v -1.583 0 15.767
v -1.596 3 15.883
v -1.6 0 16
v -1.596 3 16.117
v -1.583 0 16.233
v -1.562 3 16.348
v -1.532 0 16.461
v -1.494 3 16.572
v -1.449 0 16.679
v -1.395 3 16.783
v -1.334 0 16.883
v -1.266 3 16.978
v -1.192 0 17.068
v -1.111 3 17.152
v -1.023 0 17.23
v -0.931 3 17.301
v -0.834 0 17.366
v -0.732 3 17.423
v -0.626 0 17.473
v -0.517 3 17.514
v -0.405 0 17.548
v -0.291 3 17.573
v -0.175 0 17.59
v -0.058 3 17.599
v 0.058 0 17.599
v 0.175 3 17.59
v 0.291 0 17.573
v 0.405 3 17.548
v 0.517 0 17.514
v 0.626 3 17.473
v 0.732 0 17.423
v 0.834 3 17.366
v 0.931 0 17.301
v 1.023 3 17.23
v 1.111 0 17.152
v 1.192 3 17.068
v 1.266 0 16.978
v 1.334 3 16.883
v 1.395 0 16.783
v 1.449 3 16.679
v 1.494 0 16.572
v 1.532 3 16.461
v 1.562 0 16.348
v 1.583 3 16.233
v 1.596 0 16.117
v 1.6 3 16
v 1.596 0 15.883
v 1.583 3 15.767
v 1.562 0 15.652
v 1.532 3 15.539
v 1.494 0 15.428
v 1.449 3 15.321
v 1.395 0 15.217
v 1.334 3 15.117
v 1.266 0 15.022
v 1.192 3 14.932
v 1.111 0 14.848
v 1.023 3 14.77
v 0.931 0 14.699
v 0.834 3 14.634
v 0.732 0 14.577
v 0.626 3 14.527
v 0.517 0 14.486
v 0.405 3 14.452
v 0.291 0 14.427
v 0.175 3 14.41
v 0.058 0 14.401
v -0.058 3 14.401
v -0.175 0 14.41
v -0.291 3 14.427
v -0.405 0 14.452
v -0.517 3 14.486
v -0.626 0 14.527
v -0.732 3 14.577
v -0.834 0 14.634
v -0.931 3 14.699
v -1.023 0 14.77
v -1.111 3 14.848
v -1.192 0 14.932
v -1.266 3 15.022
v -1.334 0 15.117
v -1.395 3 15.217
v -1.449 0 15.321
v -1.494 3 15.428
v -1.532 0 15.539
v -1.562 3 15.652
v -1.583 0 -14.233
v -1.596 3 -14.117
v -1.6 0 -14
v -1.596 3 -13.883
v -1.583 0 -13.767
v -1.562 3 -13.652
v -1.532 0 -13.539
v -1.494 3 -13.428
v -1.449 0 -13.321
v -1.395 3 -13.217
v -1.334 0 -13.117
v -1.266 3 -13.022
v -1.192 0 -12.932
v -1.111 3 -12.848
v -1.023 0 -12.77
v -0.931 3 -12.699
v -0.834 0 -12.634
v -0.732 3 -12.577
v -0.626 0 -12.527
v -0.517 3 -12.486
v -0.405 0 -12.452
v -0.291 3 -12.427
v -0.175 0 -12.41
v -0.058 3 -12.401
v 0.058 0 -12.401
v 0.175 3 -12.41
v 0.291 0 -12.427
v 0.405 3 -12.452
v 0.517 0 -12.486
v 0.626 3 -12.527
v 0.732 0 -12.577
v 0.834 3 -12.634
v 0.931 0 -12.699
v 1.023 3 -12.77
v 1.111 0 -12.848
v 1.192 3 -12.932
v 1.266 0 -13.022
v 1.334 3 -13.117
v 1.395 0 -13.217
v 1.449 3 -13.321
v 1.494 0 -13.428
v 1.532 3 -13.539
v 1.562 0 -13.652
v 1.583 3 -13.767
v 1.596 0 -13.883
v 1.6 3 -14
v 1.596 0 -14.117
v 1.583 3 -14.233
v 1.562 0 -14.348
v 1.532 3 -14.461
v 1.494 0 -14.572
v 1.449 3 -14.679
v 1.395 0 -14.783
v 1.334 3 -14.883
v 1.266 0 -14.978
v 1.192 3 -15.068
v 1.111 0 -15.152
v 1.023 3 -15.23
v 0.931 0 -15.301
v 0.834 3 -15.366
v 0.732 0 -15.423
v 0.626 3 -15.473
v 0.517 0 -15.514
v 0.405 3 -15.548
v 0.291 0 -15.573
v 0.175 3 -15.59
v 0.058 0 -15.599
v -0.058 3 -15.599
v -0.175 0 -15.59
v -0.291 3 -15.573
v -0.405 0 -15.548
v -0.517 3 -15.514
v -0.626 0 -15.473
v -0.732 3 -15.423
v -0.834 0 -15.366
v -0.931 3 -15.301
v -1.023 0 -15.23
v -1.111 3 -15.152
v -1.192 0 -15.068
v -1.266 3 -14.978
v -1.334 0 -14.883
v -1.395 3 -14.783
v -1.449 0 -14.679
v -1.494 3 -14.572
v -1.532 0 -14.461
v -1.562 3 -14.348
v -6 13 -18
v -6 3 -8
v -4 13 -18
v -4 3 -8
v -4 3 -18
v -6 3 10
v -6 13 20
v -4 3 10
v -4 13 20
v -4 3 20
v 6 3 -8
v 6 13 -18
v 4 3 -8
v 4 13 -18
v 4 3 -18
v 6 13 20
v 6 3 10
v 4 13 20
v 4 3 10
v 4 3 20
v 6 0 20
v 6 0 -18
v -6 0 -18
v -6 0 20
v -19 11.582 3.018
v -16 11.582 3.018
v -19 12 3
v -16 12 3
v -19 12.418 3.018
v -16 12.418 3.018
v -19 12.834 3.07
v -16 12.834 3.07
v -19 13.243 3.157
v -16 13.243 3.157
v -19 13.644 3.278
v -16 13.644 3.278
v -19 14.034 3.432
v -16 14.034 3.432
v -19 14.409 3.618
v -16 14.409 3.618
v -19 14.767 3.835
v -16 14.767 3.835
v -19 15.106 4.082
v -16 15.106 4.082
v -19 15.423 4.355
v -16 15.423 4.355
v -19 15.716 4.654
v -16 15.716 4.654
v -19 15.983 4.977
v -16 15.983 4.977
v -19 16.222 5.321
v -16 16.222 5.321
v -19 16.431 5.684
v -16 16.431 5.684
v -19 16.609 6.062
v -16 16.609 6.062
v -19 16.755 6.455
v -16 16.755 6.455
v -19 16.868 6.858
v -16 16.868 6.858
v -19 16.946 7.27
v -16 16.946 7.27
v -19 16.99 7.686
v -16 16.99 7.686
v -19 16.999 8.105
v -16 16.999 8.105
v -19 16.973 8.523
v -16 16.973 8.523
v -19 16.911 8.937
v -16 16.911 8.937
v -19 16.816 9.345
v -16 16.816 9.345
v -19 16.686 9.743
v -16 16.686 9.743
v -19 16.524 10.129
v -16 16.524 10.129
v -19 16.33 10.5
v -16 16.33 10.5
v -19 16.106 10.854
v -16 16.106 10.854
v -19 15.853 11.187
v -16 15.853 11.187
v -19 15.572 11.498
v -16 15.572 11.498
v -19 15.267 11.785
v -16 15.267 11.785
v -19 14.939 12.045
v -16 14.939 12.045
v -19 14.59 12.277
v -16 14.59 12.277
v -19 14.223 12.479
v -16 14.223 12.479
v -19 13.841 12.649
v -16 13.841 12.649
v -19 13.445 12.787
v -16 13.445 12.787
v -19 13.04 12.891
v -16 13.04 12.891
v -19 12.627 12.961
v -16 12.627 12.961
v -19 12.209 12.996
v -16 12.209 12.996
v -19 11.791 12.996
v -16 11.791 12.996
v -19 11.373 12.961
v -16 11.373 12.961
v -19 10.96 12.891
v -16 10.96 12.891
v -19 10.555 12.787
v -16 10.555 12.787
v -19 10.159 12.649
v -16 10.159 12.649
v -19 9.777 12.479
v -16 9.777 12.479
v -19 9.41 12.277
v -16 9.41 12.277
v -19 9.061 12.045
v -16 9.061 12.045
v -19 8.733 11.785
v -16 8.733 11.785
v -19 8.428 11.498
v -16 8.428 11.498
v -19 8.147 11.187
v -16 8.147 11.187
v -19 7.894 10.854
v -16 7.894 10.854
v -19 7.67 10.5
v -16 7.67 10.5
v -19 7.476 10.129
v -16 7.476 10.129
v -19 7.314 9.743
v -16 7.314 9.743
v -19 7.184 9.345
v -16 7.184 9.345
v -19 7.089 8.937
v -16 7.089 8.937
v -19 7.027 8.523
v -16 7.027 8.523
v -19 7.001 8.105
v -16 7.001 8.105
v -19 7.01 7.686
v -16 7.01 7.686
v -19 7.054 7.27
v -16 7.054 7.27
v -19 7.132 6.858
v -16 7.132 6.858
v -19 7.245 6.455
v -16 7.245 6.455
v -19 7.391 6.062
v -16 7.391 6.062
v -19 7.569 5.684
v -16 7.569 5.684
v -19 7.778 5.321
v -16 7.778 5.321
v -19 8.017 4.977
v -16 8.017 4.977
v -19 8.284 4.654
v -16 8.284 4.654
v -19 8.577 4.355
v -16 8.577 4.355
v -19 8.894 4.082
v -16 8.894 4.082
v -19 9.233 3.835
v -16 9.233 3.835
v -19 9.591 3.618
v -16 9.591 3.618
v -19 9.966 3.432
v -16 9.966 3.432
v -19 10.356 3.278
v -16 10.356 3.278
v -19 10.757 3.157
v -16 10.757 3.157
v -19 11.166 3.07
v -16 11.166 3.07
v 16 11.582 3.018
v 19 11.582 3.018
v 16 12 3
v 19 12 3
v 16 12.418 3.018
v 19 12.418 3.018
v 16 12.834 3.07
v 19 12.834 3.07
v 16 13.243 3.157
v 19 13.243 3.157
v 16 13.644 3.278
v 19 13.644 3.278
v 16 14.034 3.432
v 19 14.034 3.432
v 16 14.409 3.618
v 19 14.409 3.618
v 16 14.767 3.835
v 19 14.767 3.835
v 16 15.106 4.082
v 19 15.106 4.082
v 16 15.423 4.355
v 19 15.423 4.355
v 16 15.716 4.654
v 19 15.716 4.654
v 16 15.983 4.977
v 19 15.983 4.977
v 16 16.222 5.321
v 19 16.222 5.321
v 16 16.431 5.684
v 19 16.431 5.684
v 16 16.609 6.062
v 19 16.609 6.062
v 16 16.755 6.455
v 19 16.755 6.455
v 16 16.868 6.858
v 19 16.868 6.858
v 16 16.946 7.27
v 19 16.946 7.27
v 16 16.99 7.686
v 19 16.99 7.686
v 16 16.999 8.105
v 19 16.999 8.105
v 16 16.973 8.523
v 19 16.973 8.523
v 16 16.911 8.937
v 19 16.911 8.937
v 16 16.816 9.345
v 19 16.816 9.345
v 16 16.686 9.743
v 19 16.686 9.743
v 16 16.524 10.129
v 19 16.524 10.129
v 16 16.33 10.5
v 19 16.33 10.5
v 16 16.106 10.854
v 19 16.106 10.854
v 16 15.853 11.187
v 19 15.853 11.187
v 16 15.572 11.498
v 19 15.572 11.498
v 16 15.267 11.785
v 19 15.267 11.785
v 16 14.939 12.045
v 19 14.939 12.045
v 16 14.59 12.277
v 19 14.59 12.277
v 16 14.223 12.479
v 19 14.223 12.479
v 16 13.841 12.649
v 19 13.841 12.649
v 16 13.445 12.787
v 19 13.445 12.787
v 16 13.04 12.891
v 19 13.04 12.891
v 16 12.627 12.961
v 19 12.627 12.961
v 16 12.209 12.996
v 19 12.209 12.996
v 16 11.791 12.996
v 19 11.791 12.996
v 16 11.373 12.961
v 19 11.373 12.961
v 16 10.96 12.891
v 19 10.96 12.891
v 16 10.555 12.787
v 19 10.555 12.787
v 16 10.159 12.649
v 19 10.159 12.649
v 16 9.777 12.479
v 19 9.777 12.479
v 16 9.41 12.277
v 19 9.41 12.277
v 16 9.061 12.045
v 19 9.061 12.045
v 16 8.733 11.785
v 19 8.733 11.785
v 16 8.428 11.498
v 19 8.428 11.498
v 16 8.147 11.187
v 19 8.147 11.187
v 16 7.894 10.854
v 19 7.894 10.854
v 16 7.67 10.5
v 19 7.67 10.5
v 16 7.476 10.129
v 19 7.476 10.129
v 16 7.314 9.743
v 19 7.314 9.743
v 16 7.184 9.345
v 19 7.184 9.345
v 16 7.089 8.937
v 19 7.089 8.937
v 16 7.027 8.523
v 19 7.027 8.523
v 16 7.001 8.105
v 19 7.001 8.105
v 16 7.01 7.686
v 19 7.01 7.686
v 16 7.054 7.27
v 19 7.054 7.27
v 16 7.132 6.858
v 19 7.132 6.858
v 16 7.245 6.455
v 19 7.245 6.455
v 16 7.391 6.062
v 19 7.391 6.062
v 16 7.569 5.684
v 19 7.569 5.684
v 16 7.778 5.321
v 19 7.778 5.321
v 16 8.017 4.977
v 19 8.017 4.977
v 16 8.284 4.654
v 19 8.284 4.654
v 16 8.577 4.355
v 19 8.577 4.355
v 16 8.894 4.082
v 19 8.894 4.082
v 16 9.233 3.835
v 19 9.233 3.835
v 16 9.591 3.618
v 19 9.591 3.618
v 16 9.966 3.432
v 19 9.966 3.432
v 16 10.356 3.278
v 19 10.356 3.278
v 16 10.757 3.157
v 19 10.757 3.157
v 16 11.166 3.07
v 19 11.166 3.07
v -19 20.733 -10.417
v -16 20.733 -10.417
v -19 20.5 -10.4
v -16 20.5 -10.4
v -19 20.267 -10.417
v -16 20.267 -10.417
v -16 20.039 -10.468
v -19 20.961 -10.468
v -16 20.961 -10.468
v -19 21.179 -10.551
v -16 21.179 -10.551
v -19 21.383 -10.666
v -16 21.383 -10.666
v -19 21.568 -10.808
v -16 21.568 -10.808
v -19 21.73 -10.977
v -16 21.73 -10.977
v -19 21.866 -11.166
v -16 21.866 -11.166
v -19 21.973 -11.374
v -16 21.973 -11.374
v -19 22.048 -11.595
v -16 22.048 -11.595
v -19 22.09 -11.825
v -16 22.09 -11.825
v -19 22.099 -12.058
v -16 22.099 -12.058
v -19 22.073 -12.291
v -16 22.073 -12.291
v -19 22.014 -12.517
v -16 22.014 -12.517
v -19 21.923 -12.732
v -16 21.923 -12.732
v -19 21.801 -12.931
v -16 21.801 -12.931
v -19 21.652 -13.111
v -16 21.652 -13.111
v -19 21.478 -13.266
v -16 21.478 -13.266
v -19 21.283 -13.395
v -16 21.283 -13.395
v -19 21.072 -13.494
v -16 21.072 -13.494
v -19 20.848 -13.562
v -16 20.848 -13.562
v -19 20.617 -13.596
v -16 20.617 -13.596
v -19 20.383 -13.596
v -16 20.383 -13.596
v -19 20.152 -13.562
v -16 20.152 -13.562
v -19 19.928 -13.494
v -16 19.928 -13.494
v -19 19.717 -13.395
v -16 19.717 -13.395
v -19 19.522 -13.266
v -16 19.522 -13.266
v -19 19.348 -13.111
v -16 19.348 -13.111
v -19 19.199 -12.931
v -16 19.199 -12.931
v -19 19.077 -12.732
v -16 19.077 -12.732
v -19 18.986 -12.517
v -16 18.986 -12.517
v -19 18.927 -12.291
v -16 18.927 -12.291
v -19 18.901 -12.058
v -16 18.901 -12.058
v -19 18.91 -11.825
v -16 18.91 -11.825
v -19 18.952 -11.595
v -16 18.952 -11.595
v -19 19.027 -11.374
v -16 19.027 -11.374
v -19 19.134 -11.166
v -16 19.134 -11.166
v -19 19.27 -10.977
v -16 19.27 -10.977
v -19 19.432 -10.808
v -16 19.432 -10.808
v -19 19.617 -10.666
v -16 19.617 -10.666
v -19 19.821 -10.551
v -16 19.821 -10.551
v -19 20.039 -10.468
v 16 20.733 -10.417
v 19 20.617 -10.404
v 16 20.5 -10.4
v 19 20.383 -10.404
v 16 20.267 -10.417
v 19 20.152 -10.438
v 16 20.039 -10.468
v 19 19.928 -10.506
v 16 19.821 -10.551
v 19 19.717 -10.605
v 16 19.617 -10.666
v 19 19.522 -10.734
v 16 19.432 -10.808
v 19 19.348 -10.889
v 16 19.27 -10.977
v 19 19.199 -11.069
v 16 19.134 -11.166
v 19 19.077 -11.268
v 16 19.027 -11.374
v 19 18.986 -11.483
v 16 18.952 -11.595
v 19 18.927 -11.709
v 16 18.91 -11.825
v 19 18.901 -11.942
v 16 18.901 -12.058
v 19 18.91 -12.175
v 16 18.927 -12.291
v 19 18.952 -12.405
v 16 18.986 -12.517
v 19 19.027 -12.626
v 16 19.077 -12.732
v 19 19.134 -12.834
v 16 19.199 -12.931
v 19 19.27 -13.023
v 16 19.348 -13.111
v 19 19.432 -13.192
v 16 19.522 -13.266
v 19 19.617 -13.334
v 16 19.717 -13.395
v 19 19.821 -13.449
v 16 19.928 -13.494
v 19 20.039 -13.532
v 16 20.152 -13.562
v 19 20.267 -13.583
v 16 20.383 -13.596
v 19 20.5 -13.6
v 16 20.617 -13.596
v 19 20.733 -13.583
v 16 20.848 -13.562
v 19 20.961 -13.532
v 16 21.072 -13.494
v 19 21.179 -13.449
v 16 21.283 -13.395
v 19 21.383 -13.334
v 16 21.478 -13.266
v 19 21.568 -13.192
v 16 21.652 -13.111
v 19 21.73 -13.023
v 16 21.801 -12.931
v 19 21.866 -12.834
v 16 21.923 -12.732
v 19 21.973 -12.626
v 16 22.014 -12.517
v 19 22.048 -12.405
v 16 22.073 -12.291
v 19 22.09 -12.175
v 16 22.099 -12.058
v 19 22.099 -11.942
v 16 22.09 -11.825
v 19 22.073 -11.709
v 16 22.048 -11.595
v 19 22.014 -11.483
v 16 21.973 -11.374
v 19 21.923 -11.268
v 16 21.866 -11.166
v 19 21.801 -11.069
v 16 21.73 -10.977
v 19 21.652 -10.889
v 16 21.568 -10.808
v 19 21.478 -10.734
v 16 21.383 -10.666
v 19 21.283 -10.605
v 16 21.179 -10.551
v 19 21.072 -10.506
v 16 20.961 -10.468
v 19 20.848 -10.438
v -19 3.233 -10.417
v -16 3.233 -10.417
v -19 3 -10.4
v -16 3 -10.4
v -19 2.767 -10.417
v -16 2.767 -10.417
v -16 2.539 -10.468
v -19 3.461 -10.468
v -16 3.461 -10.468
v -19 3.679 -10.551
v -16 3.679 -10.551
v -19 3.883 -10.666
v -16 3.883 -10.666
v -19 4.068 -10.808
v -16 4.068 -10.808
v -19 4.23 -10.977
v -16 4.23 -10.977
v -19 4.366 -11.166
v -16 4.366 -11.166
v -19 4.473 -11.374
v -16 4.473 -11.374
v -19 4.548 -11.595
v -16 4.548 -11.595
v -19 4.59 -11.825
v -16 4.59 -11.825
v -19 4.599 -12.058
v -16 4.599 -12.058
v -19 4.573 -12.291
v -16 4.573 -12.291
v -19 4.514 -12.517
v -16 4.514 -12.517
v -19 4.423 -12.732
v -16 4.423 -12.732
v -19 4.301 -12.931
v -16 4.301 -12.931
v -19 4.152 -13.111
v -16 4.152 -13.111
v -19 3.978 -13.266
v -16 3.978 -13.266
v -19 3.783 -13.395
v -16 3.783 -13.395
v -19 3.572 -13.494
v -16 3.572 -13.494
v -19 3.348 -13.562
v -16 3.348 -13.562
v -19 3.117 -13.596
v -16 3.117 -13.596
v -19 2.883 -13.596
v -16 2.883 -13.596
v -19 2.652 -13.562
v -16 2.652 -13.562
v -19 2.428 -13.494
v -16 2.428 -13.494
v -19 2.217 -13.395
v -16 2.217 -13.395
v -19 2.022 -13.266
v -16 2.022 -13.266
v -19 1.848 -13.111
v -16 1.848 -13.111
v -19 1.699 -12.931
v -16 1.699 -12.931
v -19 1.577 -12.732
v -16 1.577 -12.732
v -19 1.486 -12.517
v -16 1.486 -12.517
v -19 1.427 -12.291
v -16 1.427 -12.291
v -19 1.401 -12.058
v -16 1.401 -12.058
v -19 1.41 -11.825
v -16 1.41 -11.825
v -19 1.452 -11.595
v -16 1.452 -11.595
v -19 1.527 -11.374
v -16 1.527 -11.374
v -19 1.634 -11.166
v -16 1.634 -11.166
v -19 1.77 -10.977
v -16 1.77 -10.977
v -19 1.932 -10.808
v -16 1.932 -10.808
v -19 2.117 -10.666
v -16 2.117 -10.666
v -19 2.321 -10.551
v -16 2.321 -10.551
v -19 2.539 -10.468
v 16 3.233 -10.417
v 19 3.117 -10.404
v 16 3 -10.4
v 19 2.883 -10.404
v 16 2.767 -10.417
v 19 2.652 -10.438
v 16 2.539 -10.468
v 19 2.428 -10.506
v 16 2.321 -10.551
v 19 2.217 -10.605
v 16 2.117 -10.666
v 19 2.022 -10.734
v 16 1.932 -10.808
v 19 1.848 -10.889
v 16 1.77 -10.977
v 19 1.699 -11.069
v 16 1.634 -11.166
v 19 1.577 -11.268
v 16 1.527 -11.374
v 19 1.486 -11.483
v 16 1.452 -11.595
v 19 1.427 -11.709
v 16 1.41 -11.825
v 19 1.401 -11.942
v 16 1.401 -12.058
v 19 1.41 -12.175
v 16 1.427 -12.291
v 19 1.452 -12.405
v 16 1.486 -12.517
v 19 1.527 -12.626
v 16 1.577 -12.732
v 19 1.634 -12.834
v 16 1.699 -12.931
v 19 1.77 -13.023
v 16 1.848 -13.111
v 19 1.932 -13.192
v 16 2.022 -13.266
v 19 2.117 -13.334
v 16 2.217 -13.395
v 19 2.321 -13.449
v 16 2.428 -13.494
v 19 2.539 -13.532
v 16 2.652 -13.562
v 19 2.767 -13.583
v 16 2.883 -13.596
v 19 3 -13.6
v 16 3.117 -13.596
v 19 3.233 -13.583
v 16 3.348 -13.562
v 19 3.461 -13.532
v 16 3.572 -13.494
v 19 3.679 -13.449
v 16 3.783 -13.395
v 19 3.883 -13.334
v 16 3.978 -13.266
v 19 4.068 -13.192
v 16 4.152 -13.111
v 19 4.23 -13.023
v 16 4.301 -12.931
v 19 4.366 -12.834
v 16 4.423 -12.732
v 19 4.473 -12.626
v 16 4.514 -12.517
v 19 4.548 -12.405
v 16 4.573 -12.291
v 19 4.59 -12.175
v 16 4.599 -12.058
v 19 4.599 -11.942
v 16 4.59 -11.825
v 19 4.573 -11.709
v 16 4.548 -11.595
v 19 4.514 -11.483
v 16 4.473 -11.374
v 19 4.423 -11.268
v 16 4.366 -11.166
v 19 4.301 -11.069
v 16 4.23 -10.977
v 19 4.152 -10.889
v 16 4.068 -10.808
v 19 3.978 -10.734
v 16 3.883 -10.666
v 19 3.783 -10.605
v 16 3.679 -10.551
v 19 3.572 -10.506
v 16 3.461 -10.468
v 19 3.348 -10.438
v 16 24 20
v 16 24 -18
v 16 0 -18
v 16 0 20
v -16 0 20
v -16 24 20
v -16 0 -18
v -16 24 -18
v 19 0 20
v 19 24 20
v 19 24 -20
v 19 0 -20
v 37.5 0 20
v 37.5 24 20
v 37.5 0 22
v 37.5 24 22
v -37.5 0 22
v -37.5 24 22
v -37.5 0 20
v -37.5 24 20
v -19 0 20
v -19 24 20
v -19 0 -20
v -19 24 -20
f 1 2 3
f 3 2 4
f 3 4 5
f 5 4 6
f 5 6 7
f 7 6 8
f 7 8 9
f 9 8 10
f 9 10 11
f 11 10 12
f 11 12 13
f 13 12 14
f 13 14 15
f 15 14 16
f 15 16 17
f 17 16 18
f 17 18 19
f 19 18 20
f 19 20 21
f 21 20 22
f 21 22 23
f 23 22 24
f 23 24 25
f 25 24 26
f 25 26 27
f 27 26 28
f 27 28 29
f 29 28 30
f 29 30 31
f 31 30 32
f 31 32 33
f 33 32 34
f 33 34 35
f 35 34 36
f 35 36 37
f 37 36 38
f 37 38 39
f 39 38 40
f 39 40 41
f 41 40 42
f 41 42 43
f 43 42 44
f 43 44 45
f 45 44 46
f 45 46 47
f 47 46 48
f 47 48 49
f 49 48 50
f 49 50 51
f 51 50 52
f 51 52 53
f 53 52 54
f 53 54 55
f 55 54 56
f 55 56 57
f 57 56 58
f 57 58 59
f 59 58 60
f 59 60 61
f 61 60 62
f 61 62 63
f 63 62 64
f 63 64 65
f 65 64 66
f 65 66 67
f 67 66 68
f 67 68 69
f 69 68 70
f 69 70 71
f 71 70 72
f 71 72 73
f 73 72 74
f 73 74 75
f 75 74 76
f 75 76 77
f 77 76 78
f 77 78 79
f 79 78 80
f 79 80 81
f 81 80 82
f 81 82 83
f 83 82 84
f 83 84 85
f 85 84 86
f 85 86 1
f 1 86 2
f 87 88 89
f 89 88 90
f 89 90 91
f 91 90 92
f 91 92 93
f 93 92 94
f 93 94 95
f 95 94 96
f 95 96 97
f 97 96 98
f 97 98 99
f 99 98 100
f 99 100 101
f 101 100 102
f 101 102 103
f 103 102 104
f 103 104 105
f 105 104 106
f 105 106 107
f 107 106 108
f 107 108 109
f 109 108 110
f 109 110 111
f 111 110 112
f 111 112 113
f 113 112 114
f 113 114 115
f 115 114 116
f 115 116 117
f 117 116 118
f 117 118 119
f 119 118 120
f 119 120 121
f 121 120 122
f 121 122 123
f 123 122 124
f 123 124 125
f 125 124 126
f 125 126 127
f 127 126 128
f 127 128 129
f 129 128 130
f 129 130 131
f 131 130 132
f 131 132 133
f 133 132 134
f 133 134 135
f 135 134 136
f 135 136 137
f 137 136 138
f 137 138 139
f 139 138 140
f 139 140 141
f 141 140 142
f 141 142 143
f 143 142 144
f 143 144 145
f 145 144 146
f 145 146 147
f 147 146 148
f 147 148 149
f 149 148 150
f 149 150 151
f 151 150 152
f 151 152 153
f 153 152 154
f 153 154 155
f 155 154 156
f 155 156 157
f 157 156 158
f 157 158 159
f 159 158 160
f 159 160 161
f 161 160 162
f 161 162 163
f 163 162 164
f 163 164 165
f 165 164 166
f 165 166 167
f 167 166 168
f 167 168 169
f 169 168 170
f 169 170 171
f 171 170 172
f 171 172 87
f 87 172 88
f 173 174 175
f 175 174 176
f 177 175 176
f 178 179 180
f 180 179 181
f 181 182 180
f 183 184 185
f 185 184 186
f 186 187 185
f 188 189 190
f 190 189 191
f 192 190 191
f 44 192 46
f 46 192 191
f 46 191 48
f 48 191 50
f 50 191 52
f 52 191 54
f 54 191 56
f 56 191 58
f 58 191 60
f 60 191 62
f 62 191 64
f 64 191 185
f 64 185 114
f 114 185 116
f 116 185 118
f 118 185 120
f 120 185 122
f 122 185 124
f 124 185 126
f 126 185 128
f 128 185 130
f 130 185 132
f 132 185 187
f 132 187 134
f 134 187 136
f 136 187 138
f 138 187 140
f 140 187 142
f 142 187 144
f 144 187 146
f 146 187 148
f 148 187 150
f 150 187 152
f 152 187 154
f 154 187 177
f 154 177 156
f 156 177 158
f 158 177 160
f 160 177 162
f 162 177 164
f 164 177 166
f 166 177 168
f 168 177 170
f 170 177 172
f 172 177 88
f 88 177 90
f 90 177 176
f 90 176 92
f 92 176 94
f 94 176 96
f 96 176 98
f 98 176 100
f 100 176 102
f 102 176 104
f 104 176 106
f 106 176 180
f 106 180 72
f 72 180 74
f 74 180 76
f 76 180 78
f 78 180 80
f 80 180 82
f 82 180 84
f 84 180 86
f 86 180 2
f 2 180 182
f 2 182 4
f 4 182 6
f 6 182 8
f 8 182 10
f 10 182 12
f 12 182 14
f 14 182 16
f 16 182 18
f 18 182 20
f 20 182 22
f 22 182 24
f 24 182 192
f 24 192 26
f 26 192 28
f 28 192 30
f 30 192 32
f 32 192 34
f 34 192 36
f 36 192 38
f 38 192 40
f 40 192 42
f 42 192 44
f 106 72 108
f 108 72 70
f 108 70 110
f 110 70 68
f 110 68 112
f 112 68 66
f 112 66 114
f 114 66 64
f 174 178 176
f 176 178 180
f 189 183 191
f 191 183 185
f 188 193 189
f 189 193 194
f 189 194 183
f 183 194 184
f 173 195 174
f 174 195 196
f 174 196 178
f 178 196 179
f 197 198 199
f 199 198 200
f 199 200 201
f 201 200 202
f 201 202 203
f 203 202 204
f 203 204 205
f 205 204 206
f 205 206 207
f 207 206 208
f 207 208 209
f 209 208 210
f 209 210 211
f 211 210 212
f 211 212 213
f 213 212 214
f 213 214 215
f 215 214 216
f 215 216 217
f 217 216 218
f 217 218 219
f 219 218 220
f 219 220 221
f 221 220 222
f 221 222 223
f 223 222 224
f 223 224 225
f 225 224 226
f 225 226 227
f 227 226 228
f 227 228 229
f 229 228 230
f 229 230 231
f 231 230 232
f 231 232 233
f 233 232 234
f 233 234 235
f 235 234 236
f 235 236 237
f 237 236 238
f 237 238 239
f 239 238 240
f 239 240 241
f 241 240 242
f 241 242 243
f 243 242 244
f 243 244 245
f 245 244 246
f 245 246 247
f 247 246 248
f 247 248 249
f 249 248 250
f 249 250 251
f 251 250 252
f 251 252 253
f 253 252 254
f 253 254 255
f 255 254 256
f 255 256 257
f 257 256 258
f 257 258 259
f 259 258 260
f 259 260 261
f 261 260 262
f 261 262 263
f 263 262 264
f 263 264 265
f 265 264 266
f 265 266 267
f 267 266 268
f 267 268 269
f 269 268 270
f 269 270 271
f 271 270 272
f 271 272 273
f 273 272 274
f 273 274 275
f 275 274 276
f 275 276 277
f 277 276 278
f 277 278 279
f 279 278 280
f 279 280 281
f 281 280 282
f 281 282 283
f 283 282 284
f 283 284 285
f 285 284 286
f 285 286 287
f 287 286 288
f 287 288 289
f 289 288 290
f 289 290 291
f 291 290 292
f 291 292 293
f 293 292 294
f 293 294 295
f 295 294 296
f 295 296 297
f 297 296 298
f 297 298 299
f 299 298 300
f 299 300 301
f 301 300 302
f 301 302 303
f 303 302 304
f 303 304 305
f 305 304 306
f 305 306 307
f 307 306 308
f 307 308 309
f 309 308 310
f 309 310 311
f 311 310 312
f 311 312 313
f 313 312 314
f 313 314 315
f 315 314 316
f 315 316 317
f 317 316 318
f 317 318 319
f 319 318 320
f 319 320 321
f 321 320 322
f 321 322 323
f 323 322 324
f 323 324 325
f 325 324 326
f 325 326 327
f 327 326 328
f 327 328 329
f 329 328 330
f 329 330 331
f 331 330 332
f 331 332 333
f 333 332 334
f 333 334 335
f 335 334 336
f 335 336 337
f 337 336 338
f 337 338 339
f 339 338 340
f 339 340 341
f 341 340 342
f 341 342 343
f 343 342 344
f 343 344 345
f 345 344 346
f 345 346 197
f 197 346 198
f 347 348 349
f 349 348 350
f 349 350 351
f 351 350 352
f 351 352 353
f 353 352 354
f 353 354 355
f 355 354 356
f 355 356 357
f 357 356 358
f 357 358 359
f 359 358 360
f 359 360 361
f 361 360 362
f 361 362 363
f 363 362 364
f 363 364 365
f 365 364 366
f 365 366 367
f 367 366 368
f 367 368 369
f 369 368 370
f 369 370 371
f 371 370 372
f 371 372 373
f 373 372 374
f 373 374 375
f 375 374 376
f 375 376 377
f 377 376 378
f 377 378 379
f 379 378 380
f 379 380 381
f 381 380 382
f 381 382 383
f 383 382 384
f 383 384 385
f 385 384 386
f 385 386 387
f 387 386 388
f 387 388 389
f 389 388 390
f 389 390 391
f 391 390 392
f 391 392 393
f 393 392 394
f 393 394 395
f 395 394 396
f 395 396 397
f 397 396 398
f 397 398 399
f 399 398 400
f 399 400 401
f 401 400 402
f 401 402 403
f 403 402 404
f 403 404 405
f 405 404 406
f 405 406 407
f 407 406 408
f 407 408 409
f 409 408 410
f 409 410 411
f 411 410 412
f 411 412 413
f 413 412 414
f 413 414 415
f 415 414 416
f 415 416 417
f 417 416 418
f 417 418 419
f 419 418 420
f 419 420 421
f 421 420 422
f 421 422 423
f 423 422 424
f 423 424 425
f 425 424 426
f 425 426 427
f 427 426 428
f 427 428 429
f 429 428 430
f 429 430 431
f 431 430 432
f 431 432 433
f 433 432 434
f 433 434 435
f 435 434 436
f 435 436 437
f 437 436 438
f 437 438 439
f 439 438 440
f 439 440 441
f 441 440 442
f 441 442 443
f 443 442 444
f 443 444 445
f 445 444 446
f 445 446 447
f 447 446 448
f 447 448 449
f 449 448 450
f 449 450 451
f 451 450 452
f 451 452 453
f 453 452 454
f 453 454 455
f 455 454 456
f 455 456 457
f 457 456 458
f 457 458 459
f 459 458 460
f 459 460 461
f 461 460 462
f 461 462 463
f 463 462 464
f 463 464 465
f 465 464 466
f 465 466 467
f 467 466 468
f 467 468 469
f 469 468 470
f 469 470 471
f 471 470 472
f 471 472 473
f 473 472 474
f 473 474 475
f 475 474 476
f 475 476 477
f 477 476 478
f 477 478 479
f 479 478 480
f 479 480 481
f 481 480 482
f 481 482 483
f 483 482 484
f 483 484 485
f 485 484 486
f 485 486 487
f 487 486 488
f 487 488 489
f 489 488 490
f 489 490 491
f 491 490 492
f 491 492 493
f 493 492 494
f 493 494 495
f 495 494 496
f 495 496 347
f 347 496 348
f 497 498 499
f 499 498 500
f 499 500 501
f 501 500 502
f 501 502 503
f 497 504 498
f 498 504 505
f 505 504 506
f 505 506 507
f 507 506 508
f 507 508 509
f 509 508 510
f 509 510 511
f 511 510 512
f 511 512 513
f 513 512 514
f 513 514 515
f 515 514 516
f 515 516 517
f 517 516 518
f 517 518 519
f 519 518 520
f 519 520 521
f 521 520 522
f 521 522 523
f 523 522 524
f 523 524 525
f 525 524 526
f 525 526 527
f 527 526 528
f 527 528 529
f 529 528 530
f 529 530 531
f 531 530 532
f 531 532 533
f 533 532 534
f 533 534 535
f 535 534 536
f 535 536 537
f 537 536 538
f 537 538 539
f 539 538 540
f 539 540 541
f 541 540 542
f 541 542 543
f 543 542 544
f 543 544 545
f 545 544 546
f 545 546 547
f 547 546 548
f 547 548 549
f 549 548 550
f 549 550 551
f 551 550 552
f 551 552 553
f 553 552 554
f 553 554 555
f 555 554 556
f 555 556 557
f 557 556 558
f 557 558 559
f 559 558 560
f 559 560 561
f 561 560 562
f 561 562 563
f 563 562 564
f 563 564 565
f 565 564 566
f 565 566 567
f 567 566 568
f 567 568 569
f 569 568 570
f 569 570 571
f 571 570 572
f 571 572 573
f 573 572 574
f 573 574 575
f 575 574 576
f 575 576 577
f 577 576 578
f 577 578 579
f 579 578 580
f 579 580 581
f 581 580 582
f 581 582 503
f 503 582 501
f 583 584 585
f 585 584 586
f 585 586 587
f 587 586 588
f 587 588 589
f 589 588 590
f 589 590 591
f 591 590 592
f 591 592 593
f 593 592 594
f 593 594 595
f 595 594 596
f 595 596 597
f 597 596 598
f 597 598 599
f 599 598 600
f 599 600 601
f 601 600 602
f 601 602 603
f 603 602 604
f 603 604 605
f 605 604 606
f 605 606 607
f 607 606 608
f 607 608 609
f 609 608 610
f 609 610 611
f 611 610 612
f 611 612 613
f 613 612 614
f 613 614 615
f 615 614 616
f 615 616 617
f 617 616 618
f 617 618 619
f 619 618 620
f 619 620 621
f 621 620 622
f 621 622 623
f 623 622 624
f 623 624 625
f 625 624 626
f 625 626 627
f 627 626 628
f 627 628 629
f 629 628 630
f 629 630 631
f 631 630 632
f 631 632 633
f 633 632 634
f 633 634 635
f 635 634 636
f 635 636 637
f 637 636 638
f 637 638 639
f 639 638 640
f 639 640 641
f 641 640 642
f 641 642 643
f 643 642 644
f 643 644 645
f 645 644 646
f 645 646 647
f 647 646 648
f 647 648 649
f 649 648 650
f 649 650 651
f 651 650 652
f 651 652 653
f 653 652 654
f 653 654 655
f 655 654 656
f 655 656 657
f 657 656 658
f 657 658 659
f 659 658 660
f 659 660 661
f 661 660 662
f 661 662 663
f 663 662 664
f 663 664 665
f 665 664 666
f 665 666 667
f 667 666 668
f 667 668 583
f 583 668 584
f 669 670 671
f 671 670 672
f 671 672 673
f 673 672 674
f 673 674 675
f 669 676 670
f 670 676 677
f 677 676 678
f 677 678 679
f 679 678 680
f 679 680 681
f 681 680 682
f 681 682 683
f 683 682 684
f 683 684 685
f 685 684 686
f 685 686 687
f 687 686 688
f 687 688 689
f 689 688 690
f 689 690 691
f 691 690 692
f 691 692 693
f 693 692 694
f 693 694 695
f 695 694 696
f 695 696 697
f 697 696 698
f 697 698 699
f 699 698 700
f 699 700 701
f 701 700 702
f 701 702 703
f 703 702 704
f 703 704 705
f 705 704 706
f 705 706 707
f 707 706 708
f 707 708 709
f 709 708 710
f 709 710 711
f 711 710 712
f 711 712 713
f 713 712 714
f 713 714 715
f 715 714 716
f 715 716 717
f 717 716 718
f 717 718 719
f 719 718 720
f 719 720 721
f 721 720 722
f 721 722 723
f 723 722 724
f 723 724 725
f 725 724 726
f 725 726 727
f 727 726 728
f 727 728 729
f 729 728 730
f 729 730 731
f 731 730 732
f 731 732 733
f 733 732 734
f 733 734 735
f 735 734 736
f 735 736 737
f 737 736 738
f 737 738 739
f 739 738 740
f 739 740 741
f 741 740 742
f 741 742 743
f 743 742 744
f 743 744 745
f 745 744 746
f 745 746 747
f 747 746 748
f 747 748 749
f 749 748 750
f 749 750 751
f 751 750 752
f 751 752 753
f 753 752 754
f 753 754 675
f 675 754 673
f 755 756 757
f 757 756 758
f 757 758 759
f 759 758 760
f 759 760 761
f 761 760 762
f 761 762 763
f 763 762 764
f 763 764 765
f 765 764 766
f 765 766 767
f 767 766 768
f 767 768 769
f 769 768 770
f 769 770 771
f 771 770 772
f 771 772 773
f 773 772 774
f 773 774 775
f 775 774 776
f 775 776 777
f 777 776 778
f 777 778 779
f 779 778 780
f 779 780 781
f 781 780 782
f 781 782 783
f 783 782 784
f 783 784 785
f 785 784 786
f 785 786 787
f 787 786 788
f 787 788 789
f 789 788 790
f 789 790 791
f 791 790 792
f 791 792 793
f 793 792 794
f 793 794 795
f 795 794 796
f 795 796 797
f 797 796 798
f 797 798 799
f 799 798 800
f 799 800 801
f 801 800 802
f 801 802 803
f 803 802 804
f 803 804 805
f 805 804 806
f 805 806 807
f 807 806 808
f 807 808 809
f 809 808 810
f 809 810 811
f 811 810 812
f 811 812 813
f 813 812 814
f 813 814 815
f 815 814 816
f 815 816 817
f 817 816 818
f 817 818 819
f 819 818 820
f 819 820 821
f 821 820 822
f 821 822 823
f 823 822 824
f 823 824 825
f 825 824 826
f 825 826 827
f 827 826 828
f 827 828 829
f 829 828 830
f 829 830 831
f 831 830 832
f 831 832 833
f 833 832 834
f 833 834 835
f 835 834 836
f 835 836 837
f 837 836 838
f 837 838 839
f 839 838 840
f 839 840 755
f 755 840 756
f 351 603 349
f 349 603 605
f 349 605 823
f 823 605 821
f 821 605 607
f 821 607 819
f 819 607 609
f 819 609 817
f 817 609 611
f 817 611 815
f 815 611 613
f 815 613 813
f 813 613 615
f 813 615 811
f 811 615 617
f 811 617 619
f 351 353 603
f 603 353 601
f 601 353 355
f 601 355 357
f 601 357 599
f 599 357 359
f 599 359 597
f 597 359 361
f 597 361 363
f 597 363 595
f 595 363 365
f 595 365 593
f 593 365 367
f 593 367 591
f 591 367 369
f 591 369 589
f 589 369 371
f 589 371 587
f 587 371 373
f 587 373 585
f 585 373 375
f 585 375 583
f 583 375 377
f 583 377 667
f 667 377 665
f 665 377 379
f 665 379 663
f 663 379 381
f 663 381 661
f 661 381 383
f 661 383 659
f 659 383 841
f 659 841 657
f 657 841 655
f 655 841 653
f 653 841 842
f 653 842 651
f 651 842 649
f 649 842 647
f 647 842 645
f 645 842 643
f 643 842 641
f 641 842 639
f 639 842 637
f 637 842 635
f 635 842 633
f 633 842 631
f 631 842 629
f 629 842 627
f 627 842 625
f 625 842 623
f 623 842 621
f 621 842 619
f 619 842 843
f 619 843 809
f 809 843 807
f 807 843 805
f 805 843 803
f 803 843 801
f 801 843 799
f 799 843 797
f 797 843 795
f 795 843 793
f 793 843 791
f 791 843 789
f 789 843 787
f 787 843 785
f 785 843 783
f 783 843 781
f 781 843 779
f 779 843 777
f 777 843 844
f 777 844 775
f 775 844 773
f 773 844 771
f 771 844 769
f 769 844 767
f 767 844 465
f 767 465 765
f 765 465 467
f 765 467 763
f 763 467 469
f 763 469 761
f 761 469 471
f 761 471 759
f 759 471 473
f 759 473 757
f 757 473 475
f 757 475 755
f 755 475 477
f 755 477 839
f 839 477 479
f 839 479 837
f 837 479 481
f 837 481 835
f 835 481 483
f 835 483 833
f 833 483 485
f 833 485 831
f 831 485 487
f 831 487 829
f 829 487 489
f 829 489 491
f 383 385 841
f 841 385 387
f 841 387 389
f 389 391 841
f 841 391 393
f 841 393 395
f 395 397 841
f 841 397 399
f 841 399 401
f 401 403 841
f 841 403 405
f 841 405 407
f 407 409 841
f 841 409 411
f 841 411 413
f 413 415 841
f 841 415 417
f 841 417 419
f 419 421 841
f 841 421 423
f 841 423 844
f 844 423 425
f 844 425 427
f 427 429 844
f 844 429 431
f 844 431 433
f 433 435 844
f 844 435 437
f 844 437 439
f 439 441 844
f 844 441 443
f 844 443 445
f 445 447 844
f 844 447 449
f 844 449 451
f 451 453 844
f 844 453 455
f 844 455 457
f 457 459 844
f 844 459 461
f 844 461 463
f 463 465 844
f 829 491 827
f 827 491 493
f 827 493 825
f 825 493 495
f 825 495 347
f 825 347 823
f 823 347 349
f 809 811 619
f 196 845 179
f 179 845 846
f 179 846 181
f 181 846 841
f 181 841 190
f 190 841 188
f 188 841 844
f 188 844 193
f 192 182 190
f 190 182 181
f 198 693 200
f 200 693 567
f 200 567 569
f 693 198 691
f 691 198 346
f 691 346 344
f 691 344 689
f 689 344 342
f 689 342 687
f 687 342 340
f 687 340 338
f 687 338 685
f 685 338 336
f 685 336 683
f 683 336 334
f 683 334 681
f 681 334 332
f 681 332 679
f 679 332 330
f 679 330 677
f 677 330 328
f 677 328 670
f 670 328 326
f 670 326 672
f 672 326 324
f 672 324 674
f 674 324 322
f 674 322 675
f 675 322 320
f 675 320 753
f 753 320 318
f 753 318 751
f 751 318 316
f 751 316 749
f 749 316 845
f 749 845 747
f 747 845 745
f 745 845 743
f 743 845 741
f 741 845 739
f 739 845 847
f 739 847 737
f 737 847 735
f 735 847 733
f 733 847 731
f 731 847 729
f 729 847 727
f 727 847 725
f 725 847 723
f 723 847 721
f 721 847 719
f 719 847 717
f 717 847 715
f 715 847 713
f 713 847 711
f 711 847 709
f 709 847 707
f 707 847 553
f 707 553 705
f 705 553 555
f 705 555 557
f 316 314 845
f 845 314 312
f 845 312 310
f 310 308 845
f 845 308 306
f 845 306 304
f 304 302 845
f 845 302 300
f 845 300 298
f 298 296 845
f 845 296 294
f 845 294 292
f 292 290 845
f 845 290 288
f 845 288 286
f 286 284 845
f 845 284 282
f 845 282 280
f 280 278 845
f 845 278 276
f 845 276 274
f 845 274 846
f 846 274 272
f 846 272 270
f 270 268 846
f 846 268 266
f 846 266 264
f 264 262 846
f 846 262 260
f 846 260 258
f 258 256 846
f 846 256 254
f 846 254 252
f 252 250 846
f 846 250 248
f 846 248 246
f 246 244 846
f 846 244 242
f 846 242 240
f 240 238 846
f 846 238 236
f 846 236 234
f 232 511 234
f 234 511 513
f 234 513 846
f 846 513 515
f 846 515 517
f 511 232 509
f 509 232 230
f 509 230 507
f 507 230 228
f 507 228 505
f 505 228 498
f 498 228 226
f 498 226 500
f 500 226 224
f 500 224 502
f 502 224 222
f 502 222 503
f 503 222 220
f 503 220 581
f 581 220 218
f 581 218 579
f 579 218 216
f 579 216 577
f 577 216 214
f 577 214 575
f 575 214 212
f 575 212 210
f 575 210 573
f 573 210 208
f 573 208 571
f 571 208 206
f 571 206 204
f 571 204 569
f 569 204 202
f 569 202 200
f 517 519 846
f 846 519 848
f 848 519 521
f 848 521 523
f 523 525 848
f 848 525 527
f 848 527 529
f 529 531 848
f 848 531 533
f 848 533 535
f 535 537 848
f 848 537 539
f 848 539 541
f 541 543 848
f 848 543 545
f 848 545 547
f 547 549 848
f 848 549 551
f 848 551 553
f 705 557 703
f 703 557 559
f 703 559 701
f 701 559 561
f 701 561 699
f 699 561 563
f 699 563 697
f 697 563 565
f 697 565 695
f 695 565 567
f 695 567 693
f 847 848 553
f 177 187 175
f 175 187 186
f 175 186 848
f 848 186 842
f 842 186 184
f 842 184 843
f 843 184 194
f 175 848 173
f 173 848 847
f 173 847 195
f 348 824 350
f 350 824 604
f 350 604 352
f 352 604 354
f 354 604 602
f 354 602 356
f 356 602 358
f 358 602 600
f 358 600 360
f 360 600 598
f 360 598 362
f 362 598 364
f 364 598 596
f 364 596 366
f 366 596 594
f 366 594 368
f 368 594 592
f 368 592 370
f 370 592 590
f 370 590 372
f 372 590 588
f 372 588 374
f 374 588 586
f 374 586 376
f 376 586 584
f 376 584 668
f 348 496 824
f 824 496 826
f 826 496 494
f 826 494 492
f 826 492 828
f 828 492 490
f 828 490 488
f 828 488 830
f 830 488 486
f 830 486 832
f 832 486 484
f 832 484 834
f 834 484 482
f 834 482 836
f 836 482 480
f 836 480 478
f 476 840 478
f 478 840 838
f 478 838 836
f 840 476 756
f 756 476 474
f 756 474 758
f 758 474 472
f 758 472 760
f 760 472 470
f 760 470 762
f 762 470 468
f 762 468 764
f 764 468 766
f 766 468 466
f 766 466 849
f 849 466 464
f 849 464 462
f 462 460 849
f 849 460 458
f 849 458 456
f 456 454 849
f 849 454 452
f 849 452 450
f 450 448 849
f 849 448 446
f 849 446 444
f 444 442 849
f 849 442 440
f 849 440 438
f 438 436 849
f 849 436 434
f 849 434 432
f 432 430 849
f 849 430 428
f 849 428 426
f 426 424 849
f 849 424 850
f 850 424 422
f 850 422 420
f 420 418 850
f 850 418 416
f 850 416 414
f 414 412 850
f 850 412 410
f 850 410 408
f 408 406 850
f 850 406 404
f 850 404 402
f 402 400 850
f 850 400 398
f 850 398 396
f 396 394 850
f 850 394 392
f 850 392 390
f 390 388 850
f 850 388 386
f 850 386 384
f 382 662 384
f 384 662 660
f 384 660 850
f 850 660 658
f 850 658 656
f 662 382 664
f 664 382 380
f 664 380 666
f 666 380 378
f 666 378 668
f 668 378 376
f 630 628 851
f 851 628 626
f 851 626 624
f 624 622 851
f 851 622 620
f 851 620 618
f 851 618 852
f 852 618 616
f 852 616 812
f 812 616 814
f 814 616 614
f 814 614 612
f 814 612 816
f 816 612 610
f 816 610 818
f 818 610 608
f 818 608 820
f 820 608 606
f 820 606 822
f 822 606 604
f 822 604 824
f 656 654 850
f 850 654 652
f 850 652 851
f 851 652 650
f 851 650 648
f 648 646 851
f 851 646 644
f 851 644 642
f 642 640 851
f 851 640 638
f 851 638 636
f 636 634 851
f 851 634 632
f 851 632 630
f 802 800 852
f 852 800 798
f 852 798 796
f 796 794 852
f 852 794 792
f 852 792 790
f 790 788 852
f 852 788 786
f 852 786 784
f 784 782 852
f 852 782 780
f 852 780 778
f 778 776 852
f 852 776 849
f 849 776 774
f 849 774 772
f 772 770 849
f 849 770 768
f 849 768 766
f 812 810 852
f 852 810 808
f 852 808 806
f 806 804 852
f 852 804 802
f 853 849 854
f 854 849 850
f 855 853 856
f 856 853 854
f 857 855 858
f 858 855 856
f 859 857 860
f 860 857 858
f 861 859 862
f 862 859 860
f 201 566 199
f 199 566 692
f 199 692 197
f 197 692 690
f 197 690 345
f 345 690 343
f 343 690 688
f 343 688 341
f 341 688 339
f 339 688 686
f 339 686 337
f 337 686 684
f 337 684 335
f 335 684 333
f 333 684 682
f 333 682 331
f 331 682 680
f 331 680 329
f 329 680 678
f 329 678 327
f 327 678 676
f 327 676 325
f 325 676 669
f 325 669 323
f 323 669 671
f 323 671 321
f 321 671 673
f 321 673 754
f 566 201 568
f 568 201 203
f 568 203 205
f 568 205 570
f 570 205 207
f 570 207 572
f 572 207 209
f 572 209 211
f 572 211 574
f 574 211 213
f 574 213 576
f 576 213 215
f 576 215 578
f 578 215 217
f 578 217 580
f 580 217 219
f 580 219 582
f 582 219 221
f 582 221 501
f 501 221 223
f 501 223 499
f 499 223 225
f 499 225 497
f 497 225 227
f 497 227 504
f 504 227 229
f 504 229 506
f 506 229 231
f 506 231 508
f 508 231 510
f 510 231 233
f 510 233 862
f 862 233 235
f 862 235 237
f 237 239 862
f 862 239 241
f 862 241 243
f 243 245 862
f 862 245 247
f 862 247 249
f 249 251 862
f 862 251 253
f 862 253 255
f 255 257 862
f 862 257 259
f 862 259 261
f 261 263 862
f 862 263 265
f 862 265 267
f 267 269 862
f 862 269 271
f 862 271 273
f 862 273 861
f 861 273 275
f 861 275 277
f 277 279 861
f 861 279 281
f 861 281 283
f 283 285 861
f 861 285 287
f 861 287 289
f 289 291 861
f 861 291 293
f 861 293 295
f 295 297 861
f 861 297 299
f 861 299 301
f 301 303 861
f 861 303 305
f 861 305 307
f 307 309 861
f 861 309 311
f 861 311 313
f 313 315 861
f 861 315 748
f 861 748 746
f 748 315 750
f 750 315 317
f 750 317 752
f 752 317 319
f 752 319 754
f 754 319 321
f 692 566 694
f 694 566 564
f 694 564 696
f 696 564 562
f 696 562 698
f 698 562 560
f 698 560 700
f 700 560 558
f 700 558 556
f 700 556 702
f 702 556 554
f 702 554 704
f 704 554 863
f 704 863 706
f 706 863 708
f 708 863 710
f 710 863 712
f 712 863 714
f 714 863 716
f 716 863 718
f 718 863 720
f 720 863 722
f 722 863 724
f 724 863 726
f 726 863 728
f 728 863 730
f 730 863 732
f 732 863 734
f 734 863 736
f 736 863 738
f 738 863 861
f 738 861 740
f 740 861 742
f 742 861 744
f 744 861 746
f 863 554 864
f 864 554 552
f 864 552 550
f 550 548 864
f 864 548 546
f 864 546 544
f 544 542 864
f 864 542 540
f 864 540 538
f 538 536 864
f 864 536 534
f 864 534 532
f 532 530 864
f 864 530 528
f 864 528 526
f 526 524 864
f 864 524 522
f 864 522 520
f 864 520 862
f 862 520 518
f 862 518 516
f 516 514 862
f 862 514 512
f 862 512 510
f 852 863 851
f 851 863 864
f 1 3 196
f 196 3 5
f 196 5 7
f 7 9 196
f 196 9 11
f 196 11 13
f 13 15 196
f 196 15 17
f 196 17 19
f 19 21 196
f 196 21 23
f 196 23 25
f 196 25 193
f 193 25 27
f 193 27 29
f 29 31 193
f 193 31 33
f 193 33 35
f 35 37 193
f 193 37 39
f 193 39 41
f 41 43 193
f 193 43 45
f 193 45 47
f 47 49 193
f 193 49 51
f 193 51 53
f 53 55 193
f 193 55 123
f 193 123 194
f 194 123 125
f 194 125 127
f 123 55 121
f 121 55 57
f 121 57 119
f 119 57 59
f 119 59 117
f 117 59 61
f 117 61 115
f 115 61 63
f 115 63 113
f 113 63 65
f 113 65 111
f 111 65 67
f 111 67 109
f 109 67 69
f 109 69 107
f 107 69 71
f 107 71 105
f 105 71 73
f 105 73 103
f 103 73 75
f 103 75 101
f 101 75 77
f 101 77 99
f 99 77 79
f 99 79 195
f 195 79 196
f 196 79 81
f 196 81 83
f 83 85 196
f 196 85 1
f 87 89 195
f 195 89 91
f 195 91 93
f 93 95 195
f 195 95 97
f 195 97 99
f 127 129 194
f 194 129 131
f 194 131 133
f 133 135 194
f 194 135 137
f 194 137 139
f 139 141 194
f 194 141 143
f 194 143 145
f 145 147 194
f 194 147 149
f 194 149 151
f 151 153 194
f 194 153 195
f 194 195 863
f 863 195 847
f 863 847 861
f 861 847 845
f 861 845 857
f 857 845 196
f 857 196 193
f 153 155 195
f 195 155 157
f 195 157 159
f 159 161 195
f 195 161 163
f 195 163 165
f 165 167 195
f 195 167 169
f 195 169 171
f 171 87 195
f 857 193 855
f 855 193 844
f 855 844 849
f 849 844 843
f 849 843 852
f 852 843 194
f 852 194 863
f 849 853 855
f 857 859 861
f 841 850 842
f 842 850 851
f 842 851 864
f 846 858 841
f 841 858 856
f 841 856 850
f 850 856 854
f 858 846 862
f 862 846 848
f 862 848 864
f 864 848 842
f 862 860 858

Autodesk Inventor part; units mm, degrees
ref_plane "YZ Plane" through (0, 0, 0) normal (1, 0, 0) x (0, 1, 0)
ref_plane "XZ Plane" through (0, 0, 0) normal (0, 1, 0) x (-1, 0, 0)
ref_plane "XY Plane" through (0, 0, 0) normal (0, 0, 1) x (1, 0, 0)
sketch "Эскиз1" plane through (0, 0, 0) normal (0, 1, 0) x (-1, 0, 0)
  line L0 (19, -20) -> (-19, -20)
  line L1 (-19, -20) -> (-19, 20)
  line L2 (-19, 20) -> (19, 20) construction
  line L3 (19, 20) -> (19, -20)
  line L4 (37.5, 20) -> (-37.5, 20) construction
  line L5 (-37.5, 20) -> (-37.5, 22)
  line L6 (-37.5, 22) -> (37.5, 22)
  line L7 (37.5, 22) -> (37.5, 20)
  line L8 (19, 20) -> (37.5, 20)
  line L9 (-19, 20) -> (-37.5, 20)
  line L10 (16, -18) -> (-16, -18)
  line L11 (-16, -18) -> (-16, 20)
  line L12 (-16, 20) -> (16, 20)
  line L13 (16, 20) -> (16, -18)
  point P0 (0, 0)
  point P1 (-19, 0)
  point P2 (0, -20)
  point P3 (0, 20)
  point P4 (0, -18)
  dimension "d0" = 38
  dimension "d1" = 40
  dimension "d2" = 75
  dimension "d3" = 2
  dimension "d13" = 3
  dimension "d14" = 2
extrude "Выдавливание1" add sketch "Эскиз1" along normal blind 24
sketch "Эскиз2" plane through (19, 0, 20) normal (1, 0, 0) x (0, 0, -1)
  line L0 (0, 0) -> (0, 24) projected
  line L1 (40, 0) -> (40, 24) projected
  line L2 (40, 0) -> (0, 0) projected
  point P0 (20, 0)
  point P1 (32, 20.5)
  point P2 (32, 3)
  dimension "d15" = 17.5
  dimension "d16" = 32
  dimension "d17" = 3
hole "Отверстие1" at (19, 20.5, -12) at (19, 3, -12) direction (-1, 0, 0) diameter 3.2 end through all
sketch "Эскиз3" plane through (19, 0, 20) normal (1, 0, 0) x (0, 0, -1)
  circle A0 centre (12, 12) radius 12 construction
  line L0 (0, 24) -> (40, 24) projected
  line L1 (40, 0) -> (0, 0) projected
  line L2 (0, 0) -> (0, 24) projected
  circle A1 centre (12, 12) radius 5
  point P0 (20, 0)
  dimension "d18" = 10
extrude "Выдавливание2" cut sketch "Эскиз3" against normal through all
sketch "Эскиз4" plane through (0, 0, 0) normal (0, -1, 0) x (1, 0, 0)
  line L0 (16, -18) -> (-16, -18) projected
  line L1 (-16, 20) -> (16, 20) projected
  line L2 (6, -18) -> (-6, -18)
  line L3 (-6, -18) -> (-6, 20)
  line L4 (-6, 20) -> (6, 20)
  line L5 (6, 20) -> (6, -18)
  point P0 (0, 0)
  point P1 (0, -18)
  point P2 (0, 20)
  point P3 (0, -18)
  point P4 (0, 20)
  point P5 (0, -18)
  dimension "d26" = 12
extrude "Выдавливание3" add sketch "Эскиз4" against normal blind 3
sketch "Эскиз5" plane through (6, 0, 20) normal (1, 0, 0) x (0, 0, -1)
  line L0 (0, 0) -> (0, 24) projected
  line L1 (0, 13) -> (10, 3)
  line L2 (38, 3) -> (0, 3) projected
  line L3 (40, 24) -> (0, 24) projected
  line L4 (19, 24) -> (19, 3)
  line L5 (38, 13) -> (28, 3)
  line L6 (38, 13) -> (38, 3)
  line L7 (28, 3) -> (38, 3)
  line L8 (10, 3) -> (0, 3)
  line L9 (0, 3) -> (0, 13)
  point P0 (20, 0)
  dimension "d27" = 45
  dimension "d28" = 10
extrude "Выдавливание4" add sketch "Эскиз5" against normal blind 2 contours L5 L6 L2 | L0 L1 L2
mirror "Зеркальное отражение1" about plane through (0, 0, 0) normal (1, 0, 0) of "Выдавливание4"
sketch "Эскиз6" plane through (0, 3, 0) normal (0, 1, 0) x (1, 0, 0)
  line L0 (-6, 8) -> (-6, -10) projected
  line L1 (6, -20) -> (6, 18) projected
  line L2 (-16, 18) -> (-16, -20) projected
  line L3 (-16, -1) -> (16, -1)
  line L4 (16, 18) -> (16, -20) projected
  point P0 (0, 0)
  point P1 (0, -16)
  point P2 (0, 14)
  dimension "d38" = 30
hole "Отверстие2" at (0, 3, 16) at (0, 3, -14) direction (0, -1, 0) diameter 3.2 end through all
properties part number "engine_mount"
